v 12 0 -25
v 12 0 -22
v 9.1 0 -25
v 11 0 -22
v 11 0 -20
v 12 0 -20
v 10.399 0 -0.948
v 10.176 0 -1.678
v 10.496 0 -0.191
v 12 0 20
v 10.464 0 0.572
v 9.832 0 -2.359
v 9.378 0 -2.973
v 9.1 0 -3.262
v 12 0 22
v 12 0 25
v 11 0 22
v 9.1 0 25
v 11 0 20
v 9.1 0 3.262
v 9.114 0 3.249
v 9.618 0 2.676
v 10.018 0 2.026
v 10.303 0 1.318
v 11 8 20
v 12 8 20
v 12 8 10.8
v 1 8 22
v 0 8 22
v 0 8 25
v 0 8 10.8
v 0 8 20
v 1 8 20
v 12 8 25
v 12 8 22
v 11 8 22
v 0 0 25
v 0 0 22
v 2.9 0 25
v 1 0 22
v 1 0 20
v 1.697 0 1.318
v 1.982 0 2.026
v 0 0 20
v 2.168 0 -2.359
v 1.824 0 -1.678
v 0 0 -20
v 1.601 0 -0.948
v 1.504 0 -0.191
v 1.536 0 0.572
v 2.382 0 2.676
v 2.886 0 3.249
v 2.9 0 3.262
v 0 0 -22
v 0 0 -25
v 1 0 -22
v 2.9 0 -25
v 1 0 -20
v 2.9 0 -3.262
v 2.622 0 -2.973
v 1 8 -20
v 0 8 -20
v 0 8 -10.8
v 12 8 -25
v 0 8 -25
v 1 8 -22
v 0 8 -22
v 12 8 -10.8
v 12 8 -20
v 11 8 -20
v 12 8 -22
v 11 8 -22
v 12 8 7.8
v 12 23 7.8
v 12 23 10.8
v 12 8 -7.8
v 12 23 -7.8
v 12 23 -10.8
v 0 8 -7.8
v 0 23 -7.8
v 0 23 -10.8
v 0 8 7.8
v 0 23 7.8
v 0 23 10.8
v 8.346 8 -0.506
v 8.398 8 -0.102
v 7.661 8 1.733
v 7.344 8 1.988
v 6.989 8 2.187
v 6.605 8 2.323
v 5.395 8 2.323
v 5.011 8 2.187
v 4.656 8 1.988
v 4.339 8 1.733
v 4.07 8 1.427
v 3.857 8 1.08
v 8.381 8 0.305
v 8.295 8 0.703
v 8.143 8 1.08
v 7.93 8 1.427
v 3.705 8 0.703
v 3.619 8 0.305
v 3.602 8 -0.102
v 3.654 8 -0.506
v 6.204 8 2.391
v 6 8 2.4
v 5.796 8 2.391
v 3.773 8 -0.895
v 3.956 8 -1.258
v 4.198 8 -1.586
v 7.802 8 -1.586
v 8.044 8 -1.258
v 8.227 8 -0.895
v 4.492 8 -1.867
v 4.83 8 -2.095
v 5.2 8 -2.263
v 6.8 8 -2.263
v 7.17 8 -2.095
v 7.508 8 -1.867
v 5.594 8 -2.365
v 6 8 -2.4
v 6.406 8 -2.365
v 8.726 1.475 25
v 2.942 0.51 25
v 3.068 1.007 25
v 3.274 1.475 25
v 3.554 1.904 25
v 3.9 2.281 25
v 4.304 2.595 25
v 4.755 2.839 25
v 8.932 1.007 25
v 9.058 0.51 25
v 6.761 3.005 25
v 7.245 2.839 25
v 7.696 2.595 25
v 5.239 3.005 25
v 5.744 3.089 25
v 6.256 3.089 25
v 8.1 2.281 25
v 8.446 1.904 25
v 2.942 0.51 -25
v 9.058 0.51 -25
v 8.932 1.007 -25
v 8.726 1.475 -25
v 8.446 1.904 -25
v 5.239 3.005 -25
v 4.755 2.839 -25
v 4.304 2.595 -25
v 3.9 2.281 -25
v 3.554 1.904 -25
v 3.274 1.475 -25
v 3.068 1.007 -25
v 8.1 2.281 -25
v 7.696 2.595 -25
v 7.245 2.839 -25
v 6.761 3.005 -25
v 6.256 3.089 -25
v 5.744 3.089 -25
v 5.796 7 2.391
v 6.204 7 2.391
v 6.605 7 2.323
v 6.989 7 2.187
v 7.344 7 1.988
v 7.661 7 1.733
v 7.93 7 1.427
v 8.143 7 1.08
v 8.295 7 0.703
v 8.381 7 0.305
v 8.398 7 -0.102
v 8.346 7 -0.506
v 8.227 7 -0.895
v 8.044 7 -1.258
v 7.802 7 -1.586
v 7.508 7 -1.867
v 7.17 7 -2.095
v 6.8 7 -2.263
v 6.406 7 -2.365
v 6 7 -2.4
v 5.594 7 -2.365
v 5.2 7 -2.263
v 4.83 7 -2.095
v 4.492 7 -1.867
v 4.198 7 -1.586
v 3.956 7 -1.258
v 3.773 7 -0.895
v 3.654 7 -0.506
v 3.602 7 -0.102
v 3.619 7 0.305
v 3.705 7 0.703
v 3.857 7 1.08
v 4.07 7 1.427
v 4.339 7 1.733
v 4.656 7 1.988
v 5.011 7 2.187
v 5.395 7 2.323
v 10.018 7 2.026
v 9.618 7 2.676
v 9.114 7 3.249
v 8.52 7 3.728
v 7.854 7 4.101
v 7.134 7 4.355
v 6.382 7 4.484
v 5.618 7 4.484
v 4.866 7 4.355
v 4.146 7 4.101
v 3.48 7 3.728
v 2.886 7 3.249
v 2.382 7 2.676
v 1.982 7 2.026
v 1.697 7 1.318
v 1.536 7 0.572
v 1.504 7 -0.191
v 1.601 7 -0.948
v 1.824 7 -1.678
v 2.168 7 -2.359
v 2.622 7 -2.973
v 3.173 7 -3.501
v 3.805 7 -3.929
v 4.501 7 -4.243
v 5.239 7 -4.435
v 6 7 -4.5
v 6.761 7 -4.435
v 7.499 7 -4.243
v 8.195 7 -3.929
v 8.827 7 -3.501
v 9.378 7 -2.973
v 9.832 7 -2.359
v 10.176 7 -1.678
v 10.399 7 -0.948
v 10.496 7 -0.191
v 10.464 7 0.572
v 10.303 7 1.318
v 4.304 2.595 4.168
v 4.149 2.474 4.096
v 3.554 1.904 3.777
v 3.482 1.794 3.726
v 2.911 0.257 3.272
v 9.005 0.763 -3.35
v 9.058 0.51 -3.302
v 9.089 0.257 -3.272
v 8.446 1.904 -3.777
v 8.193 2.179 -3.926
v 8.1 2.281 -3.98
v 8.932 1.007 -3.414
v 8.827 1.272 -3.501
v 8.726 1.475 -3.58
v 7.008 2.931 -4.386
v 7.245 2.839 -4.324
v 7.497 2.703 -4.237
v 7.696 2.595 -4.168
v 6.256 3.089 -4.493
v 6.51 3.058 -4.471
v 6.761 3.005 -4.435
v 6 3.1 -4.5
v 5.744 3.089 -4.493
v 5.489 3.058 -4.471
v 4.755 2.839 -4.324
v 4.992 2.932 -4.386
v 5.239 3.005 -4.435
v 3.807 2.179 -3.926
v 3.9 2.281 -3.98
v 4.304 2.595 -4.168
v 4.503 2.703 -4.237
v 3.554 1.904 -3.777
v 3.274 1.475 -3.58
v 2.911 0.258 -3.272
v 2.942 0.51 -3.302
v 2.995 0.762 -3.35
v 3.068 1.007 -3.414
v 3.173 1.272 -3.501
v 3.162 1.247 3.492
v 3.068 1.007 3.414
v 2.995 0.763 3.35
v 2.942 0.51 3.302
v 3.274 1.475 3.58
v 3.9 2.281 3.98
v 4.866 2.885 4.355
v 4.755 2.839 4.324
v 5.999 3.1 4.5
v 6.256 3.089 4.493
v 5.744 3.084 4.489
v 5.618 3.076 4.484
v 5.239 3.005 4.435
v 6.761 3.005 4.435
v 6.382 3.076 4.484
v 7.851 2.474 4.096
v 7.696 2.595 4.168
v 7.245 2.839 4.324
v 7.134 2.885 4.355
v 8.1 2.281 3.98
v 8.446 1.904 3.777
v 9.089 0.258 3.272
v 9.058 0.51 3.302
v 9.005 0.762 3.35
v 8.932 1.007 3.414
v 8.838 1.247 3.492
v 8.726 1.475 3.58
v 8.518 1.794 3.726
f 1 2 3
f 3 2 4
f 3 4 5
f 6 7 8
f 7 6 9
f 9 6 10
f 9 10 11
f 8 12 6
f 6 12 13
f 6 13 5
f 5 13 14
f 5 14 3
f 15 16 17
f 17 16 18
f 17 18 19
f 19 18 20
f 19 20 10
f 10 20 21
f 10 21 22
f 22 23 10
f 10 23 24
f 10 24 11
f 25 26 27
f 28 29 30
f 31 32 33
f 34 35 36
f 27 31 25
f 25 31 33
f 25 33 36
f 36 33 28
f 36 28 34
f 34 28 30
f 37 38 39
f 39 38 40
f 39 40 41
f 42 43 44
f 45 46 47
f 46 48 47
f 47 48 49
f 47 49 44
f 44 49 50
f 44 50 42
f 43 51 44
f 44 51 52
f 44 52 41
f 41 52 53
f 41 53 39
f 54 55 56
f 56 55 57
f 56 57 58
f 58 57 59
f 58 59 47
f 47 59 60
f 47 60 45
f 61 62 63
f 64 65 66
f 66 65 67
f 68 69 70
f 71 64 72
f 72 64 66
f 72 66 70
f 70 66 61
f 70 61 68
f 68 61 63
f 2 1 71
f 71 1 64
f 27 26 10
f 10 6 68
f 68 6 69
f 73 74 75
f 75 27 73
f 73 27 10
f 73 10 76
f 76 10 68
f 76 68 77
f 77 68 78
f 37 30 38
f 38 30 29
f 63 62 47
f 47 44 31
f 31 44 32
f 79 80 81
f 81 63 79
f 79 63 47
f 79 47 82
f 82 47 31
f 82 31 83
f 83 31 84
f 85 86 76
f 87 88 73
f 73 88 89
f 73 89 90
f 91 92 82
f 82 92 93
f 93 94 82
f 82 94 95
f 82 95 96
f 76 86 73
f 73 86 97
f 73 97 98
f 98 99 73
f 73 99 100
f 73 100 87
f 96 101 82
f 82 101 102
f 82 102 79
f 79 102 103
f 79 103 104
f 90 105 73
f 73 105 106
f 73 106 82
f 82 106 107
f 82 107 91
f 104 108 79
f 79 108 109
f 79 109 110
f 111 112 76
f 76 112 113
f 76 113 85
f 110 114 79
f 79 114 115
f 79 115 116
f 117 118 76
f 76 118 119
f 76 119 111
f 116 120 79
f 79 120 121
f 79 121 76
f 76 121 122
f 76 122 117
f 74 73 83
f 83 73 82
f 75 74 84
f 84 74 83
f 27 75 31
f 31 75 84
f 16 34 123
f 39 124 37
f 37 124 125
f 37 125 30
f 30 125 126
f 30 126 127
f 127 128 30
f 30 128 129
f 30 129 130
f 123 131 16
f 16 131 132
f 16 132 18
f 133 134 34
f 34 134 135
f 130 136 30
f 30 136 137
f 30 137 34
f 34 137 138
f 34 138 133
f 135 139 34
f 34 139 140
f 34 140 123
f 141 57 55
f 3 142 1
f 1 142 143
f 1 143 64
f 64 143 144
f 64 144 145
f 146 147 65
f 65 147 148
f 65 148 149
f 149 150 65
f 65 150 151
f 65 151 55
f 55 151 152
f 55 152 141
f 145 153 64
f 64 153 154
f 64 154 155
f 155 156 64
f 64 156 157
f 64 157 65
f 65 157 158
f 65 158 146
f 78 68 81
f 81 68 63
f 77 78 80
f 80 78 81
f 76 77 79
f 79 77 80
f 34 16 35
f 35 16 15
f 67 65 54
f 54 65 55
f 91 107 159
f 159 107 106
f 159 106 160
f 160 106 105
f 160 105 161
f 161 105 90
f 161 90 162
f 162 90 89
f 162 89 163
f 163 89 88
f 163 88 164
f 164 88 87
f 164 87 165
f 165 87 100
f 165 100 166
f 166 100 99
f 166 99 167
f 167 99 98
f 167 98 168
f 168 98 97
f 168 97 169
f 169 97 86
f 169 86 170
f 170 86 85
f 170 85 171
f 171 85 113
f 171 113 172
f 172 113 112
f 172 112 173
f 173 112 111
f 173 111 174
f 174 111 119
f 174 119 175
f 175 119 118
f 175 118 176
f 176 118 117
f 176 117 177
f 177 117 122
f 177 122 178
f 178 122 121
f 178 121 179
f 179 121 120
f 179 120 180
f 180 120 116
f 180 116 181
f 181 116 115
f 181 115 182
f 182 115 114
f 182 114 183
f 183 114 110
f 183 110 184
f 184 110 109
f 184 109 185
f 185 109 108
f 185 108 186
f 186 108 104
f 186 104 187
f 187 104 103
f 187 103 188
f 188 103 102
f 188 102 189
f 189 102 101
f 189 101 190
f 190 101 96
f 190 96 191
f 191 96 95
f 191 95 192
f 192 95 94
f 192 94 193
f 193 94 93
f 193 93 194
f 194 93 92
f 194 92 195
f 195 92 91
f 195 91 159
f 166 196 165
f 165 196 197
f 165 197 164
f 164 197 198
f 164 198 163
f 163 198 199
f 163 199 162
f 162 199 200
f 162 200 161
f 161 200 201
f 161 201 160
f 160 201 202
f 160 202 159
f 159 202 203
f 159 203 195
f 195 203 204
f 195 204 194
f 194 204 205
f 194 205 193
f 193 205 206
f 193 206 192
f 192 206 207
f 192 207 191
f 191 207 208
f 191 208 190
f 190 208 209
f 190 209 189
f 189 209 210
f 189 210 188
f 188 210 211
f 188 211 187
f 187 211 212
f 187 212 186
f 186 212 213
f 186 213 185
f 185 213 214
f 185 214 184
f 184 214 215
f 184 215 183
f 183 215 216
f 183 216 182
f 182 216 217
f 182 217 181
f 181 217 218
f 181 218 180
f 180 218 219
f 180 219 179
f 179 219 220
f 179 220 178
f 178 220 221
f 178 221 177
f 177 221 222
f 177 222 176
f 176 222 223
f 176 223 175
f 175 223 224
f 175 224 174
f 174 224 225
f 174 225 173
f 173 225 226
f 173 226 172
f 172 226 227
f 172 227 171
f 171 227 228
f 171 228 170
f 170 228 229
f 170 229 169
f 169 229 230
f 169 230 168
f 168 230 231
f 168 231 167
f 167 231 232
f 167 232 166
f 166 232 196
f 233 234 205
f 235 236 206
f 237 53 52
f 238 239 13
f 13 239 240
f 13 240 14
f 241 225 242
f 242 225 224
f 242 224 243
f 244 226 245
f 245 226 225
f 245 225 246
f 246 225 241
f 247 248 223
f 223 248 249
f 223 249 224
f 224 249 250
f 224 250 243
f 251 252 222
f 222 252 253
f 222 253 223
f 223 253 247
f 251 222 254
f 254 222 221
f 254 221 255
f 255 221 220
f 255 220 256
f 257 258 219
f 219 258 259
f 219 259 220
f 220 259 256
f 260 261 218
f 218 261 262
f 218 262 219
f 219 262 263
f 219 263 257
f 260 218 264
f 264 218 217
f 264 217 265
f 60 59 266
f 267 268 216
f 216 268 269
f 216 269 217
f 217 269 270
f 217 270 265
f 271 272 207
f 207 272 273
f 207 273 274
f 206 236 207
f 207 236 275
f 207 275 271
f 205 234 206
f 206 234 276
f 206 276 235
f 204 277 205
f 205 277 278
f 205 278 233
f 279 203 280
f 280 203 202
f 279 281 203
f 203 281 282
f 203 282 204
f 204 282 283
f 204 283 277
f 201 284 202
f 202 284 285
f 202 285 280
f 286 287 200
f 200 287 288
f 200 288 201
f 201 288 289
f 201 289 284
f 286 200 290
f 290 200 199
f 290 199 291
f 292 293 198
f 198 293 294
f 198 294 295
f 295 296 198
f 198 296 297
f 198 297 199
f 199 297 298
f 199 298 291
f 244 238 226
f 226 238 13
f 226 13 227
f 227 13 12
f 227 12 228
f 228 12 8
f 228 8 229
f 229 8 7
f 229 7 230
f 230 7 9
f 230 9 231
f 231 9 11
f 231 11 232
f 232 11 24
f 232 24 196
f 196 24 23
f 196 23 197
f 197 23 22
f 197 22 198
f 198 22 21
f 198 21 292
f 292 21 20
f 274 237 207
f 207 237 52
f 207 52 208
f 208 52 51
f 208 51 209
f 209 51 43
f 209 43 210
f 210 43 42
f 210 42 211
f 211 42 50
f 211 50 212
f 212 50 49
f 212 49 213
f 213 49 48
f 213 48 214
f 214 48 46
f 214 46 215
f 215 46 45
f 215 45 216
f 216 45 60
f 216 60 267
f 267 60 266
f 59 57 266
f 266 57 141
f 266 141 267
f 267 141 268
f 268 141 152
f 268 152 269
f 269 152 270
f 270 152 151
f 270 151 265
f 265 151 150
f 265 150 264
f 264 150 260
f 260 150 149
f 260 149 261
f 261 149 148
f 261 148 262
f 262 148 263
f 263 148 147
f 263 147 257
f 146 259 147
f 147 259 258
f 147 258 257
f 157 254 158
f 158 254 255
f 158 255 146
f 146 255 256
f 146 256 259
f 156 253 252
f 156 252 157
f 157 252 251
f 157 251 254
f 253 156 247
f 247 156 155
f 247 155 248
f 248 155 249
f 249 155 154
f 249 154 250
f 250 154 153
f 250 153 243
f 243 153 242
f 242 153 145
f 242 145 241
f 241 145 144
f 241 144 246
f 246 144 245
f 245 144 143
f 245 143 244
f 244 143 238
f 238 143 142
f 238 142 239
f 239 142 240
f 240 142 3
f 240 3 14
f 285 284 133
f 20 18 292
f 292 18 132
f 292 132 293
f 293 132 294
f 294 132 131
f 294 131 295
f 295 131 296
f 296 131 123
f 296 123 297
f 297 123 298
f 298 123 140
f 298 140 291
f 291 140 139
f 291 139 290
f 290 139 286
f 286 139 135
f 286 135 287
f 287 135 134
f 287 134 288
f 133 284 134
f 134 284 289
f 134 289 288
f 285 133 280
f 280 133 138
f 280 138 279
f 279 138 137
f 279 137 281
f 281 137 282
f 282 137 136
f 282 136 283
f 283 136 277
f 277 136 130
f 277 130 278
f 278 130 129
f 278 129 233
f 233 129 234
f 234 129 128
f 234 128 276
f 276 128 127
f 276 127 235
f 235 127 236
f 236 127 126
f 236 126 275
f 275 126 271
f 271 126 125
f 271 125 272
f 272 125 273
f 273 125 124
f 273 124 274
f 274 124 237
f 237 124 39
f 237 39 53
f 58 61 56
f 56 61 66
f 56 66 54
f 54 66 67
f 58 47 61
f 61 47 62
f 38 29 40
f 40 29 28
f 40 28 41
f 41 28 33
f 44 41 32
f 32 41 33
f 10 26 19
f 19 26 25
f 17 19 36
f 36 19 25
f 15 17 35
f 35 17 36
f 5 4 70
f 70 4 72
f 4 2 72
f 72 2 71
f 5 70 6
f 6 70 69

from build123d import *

# Parameters (mm, degrees)
BOSS_EXTRUDE1_DEPTH                              = 12
CBORE_FOR_M4_PAN_HEAD_MACHINE_SCREW1_D           = 4.8
CBORE_FOR_M4_PAN_HEAD_MACHINE_SCREW1_CBORE_D     = 9
CBORE_FOR_M4_PAN_HEAD_MACHINE_SCREW1_CBORE_DEPTH = 7
F_6_0MM_DOWEL_HOLE1_D                            = 6.2
SKETCH13_W                                       = 1
SKETCH13_H                                       = 2
CUT_EXTRUDE1_DEPTH                               = 12


with BuildPart() as part:
    # Sketch4 → Boss-Extrude1 (new body)
    with BuildSketch(Plane(origin=(0, 0, 0), x_dir=(0, 0, -1), z_dir=(1, 0, 0))):
        Polygon((-25, 0), (0, 0), (0, 8), (-7.8, 8), (-7.8, 23), (-10.8, 23), (-10.8, 8), (-25, 8), align=None)
        Polygon((0, 8), (0, 0), (25, 0), (25, 8), (10.8, 8), (10.8, 23), (7.8, 23), (7.8, 8), align=None)
    extrude(amount=BOSS_EXTRUDE1_DEPTH)

    # CBORE for M4 Pan Head Machine Screw1 (through all)
    with Locations(Plane(origin=(0, 0, 0), x_dir=(-1, 0, 0), z_dir=(0, -1, 0))):
        with Locations((-6, 0)):
            CounterBoreHole(CBORE_FOR_M4_PAN_HEAD_MACHINE_SCREW1_D / 2, CBORE_FOR_M4_PAN_HEAD_MACHINE_SCREW1_CBORE_D / 2, CBORE_FOR_M4_PAN_HEAD_MACHINE_SCREW1_CBORE_DEPTH)

    # Ø6.0mm Dowel Hole1 (through all)
    with Locations(Plane.XY.offset(25)):
        with Locations((6, 0)):
            Hole(F_6_0MM_DOWEL_HOLE1_D / 2)

    # Sketch13 → Cut-Extrude1 (cut)
    with BuildSketch(Plane.XZ):
        with Locations((0.5, -21)):
            Rectangle(SKETCH13_W, SKETCH13_H)
        with Locations((0.5, 21)):
            Rectangle(SKETCH13_W, SKETCH13_H)
        with Locations((11.5, 21)):
            Rectangle(SKETCH13_W, SKETCH13_H)
        with Locations((11.5, -21)):
            Rectangle(SKETCH13_W, SKETCH13_H)
    extrude(amount=-CUT_EXTRUDE1_DEPTH, mode=Mode.SUBTRACT)


solid = part.part
